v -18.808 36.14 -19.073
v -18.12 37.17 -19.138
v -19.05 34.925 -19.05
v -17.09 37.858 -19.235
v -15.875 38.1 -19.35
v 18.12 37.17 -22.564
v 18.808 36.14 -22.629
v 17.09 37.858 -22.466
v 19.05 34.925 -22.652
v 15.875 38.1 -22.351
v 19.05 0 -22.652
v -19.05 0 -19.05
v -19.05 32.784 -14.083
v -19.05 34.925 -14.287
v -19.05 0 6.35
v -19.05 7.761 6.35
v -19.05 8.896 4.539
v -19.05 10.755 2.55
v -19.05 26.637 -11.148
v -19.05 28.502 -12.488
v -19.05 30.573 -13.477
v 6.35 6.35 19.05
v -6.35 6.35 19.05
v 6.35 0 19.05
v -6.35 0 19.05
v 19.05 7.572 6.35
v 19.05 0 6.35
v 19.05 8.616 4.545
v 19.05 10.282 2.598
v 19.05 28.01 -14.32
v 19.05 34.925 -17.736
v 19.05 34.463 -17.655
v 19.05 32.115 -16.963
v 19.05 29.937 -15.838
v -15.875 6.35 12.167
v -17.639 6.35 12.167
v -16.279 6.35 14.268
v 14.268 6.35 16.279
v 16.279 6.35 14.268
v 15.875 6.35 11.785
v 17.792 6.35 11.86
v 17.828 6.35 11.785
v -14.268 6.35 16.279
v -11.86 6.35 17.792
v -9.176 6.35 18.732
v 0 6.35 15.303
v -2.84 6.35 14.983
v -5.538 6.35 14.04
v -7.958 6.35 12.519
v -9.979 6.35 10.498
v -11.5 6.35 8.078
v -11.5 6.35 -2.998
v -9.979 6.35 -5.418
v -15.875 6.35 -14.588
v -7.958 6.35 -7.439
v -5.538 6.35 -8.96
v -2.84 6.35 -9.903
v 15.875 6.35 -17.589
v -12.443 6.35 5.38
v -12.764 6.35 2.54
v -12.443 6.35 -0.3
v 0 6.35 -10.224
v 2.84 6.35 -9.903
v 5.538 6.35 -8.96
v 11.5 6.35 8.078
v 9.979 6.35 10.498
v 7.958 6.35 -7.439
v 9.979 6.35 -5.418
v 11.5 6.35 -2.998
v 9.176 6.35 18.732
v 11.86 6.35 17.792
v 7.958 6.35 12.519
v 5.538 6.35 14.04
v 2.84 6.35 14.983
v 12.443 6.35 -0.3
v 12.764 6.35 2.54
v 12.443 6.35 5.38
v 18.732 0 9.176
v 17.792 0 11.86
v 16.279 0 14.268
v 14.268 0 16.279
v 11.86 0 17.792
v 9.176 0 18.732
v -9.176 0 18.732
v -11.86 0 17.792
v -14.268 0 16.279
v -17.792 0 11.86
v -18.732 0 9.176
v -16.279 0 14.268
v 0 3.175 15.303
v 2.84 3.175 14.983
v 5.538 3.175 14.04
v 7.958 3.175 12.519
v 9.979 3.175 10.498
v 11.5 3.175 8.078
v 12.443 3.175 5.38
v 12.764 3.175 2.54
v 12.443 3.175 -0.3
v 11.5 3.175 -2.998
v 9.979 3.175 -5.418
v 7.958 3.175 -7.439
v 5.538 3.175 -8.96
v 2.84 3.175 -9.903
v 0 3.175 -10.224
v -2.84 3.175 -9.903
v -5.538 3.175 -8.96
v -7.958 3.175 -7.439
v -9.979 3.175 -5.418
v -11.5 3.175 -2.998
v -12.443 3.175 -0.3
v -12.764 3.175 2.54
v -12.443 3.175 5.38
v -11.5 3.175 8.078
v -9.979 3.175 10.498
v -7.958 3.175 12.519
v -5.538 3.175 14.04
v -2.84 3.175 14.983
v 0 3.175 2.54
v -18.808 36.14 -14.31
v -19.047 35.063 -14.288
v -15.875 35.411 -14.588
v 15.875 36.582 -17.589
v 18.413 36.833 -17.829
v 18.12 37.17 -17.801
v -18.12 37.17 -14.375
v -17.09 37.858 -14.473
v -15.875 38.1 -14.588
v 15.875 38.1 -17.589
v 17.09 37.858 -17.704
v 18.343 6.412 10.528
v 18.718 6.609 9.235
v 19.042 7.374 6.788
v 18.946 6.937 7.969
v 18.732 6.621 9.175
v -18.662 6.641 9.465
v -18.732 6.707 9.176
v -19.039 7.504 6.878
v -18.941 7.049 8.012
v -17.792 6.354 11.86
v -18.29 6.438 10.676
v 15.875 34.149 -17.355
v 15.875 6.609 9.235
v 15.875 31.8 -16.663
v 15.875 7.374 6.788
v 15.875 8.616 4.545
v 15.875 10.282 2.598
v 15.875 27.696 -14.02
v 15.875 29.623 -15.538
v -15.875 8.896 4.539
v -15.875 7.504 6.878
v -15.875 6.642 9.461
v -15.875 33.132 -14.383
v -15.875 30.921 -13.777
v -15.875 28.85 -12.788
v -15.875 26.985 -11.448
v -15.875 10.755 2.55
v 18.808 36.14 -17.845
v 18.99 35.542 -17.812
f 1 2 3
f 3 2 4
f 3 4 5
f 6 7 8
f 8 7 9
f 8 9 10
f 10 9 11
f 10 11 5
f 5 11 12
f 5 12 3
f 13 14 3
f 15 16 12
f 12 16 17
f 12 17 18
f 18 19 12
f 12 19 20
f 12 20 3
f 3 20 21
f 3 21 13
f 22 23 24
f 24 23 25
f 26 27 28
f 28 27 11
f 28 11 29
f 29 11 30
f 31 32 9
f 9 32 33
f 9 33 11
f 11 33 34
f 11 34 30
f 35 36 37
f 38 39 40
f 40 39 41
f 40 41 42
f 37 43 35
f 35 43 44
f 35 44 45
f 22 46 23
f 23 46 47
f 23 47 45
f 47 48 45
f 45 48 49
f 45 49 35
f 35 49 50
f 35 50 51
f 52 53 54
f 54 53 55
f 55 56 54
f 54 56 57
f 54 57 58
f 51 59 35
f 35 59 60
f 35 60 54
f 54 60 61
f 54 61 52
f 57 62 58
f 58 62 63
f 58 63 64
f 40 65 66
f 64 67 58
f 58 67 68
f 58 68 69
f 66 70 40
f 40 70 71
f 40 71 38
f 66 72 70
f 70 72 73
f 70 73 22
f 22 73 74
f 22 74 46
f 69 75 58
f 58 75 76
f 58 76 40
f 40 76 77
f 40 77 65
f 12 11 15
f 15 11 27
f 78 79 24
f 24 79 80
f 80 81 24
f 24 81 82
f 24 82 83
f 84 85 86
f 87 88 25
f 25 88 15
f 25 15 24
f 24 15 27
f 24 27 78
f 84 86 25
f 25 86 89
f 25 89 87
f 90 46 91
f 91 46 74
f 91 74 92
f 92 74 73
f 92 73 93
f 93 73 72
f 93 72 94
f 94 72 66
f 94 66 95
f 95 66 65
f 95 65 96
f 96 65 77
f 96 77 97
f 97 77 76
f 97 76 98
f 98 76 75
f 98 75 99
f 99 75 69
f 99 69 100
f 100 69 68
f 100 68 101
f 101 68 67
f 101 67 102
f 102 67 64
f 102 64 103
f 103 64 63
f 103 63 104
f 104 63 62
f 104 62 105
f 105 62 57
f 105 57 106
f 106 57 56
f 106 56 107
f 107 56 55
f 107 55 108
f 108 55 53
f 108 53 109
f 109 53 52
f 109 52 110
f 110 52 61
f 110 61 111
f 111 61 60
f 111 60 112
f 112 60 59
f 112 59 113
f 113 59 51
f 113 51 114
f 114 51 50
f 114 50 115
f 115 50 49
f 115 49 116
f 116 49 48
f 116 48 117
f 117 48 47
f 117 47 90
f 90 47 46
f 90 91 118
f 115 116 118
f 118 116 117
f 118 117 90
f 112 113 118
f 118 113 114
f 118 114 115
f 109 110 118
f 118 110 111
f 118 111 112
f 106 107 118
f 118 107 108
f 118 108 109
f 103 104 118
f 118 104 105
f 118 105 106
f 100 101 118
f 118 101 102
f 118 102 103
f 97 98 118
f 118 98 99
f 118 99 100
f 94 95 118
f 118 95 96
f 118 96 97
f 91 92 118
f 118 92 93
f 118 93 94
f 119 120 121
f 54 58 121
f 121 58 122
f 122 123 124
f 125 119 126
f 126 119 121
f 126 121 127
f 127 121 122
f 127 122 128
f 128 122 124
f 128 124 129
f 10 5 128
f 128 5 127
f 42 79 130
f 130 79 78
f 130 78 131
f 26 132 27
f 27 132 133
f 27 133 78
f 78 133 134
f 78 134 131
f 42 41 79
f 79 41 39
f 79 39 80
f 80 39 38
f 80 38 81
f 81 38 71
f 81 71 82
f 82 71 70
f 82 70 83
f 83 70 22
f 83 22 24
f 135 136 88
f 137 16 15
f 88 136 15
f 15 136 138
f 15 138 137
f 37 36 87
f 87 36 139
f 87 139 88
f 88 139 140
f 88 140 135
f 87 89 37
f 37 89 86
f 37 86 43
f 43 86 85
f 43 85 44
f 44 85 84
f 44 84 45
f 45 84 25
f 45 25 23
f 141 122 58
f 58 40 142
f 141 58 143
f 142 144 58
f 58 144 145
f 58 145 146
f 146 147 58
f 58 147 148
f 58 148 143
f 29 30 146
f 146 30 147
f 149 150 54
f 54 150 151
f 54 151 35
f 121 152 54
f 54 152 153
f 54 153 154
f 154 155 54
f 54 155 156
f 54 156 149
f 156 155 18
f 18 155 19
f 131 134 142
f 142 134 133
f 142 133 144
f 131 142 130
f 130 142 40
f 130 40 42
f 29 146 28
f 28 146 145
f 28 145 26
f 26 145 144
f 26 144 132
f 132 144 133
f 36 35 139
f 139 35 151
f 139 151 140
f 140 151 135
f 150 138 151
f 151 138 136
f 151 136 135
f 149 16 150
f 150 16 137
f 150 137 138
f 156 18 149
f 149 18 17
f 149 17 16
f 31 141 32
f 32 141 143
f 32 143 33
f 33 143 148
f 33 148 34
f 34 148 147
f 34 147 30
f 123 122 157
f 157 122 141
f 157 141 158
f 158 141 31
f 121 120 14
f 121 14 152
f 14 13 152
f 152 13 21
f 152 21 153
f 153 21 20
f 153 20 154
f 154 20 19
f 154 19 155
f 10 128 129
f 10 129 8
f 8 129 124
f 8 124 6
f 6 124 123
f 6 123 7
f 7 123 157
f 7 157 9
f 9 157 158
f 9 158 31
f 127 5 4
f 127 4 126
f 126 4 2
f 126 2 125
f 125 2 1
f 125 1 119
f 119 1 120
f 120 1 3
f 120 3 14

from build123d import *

# Parameters (mm, degrees)
BOSS_EXTRUDE1_DEPTH = 6.35
SKETCH2_R           = 12.7635
CUT_EXTRUDE1_DEPTH  = 3.175
BOSS_EXTRUDE2_DEPTH = 31.75
FILLET1_R           = 12.7
BOSS_EXTRUDE3_DEPTH = 3.175
BOSS_EXTRUDE7_DEPTH = 3.175
FILLET2_R           = 12.7
FILLET3_R           = 3.175


with BuildPart() as part:
    # Sketch1 → Boss-Extrude1 (new body)
    with BuildSketch(Plane(origin=(0, 0, 0), x_dir=(1, 0, 0), z_dir=(0, 1, 0))):
        Polygon((-19.05, 19.05), (-19.05, -19.05), (19.05, -19.05), (19.05, 22.651510368), align=None)
    extrude(amount=BOSS_EXTRUDE1_DEPTH)

    # Sketch2 → Cut-Extrude1 (cut)
    with BuildSketch(Plane(origin=(0, 6.35, 0), x_dir=(1, 0, 0), z_dir=(0, 1, 0))):
        with Locations(Location((0, -2.54, 0), (0, 0, 270))):
            Circle(SKETCH2_R)
    extrude(amount=-CUT_EXTRUDE1_DEPTH, mode=Mode.SUBTRACT)

    # Sketch3 → Boss-Extrude2 (add)
    with BuildSketch(Plane(origin=(0, 6.35, 0), x_dir=(1, 0, 0), z_dir=(0, 1, 0))):
        Polygon((19.05, 22.651510368), (-19.05, 19.05), (-19.05, 14.2875), (19.05, 17.889010368), align=None)
    extrude(amount=BOSS_EXTRUDE2_DEPTH)

    # Fillet1
    fillet1_edges = [part.edges().sort_by_distance(p)[0] for p in [
        (19.05, 3.175, 19.05),
        (-19.05, 3.175, 19.05),
    ]]
    fillet(fillet1_edges, radius=FILLET1_R)

    # Sketch4 → Boss-Extrude3 (add)
    with BuildSketch(Plane(origin=(19.05, 0, 0), x_dir=(0, 0, -1), z_dir=(1, 0, 0))):
        Polygon((-6.35, 6.35), (17.889010368, 31.75), (17.889010368, 6.35), align=None)
    extrude(amount=-BOSS_EXTRUDE3_DEPTH)

    # Sketch6 → Boss-Extrude7 (add)
    with BuildSketch(Plane.ZY.offset(19.05)):
        Polygon((-15.5575, 31.75), (6.35, 6.35), (-15.5575, 6.35), align=None)
    extrude(amount=-BOSS_EXTRUDE7_DEPTH)

    # Fillet2
    fillet2_edges = [part.edges().sort_by_distance(p)[0] for p in [
        (17.4625, 6.35, 6.35),
        (17.4625, 31.592749419, -17.738947436),
        (-17.4625, 6.35, 6.35),
        (-17.4625, 30.45152224, -14.437562932),
    ]]
    fillet(fillet2_edges, radius=FILLET2_R)

    # Fillet3
    fillet3_edges = [part.edges().sort_by_distance(p)[0] for p in [
        (19.05, 38.1, -20.270260368),
        (-19.05, 38.1, -16.66875),
    ]]
    fillet(fillet3_edges, radius=FILLET3_R)


solid = part.part
